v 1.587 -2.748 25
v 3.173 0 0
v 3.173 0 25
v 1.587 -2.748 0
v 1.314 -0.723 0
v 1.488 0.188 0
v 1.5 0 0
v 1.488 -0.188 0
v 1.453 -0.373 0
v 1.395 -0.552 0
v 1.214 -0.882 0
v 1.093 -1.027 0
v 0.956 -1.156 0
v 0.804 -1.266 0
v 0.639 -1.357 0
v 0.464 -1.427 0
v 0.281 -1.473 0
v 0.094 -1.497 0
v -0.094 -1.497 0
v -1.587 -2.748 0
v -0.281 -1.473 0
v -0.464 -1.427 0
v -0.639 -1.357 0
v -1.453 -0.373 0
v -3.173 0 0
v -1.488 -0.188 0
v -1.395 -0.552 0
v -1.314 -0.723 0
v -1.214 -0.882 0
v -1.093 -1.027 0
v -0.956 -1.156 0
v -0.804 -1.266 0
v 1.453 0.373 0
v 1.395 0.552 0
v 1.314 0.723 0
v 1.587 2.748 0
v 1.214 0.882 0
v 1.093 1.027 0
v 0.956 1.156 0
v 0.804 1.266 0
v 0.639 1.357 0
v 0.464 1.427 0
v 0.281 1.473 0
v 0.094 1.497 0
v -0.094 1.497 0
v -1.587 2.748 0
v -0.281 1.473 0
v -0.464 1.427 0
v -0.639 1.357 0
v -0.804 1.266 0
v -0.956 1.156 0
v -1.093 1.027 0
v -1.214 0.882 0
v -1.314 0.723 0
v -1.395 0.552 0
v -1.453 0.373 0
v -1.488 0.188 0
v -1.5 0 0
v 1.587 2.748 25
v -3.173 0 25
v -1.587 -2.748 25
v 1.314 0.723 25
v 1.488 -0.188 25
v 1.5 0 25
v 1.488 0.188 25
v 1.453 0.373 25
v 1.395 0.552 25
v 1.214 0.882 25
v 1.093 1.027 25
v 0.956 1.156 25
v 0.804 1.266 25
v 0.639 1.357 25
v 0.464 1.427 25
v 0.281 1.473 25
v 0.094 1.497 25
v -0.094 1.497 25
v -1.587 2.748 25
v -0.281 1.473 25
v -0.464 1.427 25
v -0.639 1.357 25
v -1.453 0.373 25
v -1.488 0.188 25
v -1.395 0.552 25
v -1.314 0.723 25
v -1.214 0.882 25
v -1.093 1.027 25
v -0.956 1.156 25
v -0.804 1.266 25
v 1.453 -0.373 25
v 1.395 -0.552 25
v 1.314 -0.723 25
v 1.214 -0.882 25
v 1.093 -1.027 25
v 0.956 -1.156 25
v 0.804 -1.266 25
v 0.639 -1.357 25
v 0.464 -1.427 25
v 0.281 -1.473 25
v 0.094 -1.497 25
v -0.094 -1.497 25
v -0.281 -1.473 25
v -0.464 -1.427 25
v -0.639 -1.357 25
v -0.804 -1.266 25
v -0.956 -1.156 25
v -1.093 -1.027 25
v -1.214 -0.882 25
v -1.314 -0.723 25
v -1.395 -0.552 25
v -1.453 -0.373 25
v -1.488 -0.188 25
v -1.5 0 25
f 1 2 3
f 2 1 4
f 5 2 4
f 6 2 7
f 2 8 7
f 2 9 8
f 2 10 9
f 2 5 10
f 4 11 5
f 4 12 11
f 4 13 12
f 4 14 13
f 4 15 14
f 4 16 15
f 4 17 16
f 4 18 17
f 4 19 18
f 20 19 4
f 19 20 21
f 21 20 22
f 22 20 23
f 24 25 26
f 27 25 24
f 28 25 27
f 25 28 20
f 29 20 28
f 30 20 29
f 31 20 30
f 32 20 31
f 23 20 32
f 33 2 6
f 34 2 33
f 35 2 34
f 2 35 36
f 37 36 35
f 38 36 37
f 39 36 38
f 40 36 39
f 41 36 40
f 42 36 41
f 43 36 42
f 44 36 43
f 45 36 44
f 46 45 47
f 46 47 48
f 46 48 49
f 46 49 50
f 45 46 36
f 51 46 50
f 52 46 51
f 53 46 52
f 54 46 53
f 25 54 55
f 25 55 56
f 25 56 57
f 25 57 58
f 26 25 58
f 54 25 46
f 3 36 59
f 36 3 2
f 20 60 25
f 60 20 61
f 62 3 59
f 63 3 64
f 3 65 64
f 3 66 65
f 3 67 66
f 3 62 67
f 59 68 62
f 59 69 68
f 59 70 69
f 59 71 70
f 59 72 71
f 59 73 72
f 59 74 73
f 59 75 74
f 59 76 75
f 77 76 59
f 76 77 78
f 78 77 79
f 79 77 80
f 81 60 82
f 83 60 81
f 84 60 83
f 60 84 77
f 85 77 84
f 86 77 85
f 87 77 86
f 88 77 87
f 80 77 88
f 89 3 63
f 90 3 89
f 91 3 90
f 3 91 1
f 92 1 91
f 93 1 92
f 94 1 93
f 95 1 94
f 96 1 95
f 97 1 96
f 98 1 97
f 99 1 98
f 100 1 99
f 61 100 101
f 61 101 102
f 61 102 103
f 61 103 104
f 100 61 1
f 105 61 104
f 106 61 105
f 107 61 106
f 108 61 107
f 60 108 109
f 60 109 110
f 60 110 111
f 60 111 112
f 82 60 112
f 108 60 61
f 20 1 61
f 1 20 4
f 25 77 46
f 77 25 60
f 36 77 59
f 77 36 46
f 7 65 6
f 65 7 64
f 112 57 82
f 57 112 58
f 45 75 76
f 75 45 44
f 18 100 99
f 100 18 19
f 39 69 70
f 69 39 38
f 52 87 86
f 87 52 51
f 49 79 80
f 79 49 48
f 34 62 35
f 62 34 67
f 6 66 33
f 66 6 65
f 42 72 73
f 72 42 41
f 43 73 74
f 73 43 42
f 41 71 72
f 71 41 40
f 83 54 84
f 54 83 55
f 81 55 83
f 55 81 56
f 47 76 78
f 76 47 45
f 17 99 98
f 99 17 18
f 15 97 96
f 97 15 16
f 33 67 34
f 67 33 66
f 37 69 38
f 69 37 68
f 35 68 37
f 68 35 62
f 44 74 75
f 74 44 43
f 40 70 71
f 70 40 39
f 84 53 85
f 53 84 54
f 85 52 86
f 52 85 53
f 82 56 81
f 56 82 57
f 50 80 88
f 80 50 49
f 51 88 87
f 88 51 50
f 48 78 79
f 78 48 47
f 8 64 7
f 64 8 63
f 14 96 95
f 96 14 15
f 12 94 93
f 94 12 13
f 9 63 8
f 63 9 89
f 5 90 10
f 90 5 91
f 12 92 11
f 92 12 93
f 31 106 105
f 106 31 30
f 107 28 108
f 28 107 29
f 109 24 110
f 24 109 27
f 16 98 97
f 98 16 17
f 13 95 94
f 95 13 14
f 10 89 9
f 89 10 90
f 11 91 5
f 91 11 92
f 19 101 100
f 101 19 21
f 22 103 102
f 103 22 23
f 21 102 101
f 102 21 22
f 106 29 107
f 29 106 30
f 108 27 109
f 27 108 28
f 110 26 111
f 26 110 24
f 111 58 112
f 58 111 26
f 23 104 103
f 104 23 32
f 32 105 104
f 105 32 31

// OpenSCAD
$fn = 50;


difference() {
	union() {
		translate(v = [0, 0, 0]) {
			rotate(a = [0, 0, 0]) {
				translate(v = [0, 0, 0]) {
					rotate(a = [0, 0, 0]) {
						linear_extrude(height = 25) {
							polygon(points = [[3.1735000000, 0.0000000000], [1.5867500000, 2.7483316189], [-1.5867500000, 2.7483316189], [-3.1735000000, 0.0000000000], [-1.5867500000, -2.7483316189], [1.5867500000, -2.7483316189]]);
						}
					}
				}
			}
		}
	}
	union() {
		translate(v = [0, 0, 0]) {
			rotate(a = [0, 0, 0]) {
				cylinder(h = 25, r = 1.5000000000);
			}
		}
	}
}
